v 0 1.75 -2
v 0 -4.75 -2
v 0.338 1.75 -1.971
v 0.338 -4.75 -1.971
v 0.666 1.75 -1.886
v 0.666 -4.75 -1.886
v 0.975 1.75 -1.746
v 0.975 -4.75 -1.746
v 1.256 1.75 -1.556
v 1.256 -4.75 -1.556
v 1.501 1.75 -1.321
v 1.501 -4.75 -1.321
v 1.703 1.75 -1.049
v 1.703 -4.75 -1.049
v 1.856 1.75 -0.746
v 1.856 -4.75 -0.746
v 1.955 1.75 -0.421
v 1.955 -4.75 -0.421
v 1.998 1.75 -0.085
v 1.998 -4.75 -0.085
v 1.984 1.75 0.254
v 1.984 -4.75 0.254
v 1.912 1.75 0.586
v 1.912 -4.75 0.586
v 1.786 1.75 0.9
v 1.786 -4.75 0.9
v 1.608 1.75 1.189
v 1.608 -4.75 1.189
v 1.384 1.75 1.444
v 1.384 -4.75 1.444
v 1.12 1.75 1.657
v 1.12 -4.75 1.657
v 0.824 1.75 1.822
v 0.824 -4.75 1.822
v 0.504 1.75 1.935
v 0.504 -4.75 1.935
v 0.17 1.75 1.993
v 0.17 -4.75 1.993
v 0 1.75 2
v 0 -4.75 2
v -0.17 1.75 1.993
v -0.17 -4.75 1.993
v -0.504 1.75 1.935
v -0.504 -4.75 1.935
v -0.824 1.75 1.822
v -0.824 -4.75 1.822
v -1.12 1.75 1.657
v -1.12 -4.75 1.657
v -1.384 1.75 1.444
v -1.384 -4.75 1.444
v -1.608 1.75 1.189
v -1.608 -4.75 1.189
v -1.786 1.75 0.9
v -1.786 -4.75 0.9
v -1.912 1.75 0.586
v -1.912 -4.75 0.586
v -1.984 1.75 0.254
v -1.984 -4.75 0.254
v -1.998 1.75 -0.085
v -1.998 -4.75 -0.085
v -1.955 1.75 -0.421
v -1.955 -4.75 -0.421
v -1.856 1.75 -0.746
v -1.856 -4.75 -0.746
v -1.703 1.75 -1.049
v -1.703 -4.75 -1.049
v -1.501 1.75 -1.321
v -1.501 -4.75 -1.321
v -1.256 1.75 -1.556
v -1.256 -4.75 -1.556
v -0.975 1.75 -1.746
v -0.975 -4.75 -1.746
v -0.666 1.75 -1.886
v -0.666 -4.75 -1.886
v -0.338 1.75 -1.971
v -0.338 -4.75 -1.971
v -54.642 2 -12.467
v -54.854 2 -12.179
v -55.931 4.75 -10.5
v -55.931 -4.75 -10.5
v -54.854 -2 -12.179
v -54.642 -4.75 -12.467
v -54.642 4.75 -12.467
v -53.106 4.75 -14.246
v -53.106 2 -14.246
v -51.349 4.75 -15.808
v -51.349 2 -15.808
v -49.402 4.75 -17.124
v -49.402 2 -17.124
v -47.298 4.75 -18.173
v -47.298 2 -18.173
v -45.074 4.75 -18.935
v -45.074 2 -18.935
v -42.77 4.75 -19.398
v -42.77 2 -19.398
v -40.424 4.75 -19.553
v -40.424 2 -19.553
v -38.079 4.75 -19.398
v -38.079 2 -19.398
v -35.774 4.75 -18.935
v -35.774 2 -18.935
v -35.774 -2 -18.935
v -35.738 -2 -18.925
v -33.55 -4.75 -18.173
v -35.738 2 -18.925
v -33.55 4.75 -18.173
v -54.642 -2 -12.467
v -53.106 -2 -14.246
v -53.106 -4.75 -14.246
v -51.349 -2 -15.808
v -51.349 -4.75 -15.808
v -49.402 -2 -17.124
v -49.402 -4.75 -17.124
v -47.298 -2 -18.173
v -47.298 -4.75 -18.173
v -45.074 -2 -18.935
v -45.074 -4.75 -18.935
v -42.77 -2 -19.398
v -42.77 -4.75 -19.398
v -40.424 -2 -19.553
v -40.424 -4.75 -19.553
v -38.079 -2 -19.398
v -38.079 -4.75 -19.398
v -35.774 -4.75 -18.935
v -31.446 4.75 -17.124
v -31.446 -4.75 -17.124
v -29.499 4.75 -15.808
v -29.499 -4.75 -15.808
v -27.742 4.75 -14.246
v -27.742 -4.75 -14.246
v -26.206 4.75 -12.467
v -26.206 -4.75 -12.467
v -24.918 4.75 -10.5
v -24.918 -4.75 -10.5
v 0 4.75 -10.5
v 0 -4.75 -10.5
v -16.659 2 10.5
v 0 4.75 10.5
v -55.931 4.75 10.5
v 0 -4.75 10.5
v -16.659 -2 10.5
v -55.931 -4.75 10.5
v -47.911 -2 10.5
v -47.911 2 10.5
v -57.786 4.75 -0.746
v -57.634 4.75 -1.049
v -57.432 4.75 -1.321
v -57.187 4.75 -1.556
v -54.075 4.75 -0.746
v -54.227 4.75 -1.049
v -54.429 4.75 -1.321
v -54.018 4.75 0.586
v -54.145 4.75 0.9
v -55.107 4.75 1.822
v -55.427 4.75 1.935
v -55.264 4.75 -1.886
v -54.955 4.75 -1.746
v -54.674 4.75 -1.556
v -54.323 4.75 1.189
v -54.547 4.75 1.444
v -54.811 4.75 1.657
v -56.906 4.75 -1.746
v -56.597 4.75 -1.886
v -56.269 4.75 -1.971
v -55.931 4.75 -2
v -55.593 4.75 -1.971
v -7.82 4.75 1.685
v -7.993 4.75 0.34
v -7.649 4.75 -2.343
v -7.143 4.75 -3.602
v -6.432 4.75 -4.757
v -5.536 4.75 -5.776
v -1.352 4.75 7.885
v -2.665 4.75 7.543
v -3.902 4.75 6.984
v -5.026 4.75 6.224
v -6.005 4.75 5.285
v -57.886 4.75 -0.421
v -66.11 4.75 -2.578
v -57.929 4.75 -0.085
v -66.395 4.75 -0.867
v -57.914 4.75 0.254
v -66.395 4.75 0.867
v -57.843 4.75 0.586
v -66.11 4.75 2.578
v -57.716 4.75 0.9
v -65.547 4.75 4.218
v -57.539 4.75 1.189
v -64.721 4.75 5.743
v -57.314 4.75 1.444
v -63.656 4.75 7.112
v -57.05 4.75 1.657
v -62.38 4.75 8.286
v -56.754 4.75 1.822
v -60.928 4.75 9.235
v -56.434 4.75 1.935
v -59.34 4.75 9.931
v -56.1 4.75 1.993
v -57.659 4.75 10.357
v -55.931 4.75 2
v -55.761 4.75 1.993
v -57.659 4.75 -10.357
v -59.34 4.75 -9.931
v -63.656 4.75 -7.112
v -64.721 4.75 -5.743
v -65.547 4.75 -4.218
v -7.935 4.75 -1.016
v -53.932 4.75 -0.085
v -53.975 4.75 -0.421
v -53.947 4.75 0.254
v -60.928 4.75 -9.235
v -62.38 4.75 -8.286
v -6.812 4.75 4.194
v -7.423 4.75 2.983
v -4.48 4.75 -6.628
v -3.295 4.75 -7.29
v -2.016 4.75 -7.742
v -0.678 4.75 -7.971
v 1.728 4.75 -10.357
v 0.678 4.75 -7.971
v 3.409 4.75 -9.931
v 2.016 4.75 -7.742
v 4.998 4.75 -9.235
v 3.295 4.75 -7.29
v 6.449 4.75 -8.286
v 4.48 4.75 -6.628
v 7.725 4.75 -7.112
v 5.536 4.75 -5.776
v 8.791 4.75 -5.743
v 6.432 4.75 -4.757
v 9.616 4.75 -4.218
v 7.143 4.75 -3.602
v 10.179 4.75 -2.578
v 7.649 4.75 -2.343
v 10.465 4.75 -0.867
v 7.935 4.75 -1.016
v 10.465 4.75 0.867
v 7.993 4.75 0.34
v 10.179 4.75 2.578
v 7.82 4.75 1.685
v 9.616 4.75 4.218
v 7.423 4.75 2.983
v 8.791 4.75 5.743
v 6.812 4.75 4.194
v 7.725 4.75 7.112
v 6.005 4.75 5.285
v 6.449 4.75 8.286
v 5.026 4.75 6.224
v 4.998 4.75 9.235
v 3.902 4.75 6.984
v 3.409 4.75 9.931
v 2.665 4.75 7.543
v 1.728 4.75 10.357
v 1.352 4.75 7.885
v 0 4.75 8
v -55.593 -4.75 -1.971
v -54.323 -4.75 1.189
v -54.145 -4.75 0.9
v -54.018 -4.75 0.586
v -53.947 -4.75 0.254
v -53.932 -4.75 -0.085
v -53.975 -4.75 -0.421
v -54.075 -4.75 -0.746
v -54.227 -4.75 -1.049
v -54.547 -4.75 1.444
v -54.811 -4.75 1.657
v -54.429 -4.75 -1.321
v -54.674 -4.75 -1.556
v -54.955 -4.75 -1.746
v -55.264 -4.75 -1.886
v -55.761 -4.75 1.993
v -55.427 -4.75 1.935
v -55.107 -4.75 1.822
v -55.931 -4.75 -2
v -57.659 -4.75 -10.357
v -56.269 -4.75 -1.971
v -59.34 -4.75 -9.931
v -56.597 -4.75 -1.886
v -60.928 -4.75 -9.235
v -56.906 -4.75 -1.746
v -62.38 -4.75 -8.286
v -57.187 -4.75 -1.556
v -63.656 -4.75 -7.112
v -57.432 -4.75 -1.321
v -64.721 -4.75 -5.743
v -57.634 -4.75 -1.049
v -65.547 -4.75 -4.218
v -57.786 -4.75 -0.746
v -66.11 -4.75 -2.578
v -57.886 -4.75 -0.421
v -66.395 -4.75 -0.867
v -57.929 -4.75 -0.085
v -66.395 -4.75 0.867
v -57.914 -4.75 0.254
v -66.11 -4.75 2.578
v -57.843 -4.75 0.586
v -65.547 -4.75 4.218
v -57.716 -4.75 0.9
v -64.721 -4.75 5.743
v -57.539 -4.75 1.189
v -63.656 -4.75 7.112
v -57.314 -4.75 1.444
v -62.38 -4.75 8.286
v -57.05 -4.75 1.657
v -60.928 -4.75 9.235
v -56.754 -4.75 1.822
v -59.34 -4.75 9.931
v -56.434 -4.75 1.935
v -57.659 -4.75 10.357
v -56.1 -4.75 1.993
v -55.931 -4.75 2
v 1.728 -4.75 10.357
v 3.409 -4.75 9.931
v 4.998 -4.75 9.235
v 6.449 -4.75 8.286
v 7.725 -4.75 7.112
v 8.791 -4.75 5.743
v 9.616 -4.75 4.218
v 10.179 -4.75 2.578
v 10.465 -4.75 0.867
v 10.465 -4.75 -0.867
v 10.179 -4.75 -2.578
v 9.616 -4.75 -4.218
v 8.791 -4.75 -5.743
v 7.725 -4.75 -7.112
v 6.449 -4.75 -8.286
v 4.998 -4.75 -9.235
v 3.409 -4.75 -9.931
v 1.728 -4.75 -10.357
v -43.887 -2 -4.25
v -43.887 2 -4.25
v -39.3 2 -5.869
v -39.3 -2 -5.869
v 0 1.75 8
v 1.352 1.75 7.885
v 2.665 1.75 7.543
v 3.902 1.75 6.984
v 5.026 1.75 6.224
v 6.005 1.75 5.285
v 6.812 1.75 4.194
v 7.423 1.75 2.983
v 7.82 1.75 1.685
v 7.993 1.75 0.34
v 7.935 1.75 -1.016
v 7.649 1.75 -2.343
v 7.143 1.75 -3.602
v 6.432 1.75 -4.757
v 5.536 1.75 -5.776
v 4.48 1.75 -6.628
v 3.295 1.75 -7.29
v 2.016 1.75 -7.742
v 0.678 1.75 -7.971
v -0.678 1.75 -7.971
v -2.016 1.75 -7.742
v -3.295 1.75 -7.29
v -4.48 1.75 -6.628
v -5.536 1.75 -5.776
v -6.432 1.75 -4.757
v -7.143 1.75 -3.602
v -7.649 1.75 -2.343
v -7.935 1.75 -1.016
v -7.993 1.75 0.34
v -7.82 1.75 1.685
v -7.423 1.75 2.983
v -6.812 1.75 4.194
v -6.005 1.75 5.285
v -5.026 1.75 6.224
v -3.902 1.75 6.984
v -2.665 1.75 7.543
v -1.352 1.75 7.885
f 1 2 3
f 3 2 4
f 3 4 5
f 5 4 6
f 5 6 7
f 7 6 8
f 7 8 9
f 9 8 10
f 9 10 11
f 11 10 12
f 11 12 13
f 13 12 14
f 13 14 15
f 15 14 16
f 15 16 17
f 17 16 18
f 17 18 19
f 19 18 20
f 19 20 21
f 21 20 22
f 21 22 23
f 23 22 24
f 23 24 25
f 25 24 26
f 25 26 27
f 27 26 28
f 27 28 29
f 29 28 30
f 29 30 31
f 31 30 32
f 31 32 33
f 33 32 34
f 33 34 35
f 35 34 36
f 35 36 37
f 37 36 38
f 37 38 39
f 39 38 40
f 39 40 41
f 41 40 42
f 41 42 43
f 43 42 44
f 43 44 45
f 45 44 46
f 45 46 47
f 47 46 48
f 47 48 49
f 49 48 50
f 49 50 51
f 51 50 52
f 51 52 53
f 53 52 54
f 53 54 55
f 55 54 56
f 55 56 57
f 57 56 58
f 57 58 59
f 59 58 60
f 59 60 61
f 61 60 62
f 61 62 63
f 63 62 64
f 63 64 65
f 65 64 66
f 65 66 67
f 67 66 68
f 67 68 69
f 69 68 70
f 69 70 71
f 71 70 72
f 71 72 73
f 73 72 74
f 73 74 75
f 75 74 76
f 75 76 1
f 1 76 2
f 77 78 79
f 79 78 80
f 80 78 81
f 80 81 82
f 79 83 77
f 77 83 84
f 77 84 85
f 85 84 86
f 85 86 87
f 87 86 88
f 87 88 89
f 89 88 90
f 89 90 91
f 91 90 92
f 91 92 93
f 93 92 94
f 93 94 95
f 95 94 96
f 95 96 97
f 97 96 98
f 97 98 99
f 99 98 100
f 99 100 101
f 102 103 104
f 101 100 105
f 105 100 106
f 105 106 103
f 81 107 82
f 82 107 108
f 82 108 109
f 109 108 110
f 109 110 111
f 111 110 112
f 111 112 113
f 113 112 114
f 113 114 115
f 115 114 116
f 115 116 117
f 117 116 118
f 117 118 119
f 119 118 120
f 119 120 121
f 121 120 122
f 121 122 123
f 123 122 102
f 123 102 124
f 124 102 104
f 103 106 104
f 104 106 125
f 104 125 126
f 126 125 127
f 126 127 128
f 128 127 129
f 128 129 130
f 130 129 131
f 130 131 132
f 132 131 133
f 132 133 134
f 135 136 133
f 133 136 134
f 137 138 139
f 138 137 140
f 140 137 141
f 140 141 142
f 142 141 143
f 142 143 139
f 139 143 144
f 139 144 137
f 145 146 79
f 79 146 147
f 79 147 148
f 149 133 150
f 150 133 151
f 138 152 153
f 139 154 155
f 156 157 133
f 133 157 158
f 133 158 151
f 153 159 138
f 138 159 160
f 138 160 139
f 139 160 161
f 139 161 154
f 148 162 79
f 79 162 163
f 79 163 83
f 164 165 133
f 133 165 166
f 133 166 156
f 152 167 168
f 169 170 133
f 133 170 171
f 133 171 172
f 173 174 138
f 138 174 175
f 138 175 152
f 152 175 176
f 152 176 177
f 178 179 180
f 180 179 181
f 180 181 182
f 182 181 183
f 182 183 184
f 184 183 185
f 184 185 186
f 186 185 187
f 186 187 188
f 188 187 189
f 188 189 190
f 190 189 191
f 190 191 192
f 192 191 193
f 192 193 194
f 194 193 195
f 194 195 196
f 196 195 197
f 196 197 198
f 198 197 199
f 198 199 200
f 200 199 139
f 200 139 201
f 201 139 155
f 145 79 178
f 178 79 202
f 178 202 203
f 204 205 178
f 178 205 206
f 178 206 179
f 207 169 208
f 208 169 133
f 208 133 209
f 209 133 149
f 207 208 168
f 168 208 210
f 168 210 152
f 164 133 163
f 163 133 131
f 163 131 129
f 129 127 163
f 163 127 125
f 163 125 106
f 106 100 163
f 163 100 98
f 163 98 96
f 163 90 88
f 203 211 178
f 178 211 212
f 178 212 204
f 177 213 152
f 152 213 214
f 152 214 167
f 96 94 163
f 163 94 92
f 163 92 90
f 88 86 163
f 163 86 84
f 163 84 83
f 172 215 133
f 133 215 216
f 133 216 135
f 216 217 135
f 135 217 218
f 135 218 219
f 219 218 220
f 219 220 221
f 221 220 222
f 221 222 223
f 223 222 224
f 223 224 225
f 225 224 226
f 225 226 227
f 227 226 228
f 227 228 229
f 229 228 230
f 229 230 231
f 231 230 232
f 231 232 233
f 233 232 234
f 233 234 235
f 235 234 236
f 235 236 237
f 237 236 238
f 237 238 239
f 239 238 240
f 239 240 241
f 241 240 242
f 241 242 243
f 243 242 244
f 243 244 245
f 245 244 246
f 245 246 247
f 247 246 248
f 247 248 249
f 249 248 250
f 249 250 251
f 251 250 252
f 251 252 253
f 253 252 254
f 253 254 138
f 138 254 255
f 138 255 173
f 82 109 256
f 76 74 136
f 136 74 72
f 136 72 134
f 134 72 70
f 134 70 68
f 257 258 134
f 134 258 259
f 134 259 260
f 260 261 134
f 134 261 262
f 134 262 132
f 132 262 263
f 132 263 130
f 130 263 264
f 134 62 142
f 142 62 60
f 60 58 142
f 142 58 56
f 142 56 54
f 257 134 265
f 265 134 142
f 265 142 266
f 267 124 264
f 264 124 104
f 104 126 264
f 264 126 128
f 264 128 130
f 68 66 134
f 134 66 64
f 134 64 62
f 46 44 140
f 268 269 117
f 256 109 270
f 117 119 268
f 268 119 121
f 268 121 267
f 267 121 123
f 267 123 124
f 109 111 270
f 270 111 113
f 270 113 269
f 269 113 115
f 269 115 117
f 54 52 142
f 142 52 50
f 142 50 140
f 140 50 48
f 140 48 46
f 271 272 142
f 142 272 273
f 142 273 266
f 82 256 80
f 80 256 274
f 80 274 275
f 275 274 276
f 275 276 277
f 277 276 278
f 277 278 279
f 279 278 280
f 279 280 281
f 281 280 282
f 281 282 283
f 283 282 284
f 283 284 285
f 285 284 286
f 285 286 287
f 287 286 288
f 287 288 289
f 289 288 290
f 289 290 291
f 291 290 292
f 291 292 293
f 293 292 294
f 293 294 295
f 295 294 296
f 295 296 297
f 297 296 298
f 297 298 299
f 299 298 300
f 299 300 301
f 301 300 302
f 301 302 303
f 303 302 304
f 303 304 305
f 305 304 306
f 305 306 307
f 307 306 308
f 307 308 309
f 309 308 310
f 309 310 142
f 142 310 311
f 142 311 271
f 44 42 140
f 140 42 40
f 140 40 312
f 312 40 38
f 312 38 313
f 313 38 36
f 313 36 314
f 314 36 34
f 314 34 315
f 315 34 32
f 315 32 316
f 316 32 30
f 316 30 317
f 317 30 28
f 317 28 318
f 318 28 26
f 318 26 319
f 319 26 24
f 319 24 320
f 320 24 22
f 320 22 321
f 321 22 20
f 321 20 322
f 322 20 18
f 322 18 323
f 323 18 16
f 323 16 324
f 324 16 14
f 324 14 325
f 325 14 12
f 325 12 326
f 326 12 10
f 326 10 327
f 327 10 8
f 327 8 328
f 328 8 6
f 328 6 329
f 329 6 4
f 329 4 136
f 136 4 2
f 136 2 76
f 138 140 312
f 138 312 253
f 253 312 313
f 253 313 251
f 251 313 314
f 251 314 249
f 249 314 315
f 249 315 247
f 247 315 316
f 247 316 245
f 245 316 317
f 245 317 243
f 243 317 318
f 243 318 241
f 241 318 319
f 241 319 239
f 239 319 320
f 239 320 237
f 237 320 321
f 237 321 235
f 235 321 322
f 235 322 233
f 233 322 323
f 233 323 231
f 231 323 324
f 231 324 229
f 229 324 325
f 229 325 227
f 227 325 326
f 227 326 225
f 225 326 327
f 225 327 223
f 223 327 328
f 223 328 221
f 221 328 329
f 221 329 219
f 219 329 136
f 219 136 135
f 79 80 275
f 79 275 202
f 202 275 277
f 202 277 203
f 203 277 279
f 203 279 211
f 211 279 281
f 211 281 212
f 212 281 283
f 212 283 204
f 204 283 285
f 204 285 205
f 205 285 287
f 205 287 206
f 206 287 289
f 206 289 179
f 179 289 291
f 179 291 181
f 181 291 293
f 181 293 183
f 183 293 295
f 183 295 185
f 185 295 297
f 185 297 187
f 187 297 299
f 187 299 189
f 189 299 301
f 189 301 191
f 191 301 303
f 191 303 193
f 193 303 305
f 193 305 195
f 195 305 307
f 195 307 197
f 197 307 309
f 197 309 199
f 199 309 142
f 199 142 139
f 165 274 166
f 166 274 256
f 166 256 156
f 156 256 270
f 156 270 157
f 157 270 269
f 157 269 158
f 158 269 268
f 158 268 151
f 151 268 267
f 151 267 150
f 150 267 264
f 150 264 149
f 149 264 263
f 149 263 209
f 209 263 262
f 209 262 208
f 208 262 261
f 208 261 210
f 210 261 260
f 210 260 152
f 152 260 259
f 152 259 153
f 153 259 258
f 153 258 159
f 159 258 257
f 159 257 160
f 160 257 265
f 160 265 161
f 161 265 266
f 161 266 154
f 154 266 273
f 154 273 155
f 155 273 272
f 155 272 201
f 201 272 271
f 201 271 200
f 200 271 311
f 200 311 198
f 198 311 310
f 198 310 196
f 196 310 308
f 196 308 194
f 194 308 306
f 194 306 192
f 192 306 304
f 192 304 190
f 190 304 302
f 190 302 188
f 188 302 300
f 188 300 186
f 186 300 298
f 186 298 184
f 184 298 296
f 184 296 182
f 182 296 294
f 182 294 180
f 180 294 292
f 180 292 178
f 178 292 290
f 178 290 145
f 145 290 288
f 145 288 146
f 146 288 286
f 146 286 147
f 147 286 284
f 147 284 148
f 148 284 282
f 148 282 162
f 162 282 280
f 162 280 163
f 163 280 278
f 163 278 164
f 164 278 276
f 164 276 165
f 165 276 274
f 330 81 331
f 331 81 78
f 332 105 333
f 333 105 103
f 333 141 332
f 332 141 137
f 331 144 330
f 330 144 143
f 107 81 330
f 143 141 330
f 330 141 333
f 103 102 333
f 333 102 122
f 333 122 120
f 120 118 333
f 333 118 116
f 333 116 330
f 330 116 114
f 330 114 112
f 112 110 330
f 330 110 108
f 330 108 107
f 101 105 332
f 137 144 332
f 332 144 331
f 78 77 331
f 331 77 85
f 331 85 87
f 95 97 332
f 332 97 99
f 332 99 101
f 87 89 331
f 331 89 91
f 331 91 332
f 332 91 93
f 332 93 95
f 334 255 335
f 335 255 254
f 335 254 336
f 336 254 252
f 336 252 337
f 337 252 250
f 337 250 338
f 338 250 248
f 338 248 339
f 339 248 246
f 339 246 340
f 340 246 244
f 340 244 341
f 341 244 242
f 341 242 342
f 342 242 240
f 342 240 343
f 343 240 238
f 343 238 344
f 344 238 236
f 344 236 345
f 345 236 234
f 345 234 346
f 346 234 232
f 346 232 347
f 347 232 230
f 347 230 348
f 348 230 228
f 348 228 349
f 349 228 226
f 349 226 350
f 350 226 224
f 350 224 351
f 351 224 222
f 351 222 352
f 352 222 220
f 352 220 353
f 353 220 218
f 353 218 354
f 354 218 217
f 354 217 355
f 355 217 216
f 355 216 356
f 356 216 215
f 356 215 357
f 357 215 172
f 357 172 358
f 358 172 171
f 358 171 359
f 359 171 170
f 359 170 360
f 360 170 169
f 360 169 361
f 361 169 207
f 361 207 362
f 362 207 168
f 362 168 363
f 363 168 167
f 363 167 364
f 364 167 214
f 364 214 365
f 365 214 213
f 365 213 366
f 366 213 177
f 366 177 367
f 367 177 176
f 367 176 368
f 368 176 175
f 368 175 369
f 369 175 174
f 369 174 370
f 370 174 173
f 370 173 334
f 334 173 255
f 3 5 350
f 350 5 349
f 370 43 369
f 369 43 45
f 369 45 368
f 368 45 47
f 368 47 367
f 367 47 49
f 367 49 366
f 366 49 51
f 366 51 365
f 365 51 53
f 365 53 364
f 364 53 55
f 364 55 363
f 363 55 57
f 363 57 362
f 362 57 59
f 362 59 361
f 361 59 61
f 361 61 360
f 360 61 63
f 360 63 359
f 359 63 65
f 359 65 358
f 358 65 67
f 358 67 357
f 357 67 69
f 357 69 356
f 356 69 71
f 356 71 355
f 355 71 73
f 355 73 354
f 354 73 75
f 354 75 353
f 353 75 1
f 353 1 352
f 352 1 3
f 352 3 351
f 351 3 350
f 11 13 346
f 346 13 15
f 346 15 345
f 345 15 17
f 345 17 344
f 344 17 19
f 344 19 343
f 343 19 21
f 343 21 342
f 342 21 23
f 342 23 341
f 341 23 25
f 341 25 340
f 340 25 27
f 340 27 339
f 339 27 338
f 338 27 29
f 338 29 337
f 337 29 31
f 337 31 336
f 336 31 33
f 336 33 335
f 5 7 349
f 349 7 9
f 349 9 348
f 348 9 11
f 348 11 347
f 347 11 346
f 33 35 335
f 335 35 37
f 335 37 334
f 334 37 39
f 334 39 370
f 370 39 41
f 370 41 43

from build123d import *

# Parameters (mm, degrees)
SKETCH1_R                       = 2
BOSS_EXTRUDE1_DEPTH             = 4.75
CUT_EXTRUDE1_DEPTH              = 2
BOSS_EXTRUDE2_REACH             = 69.423
BOSS_EXTRUDE2_DIRECTION_2_REACH = 69.423
CUT_EXTRUDE2_DEPTH              = 2
SKETCH7_R                       = 8
CUT_EXTRUDE3_DEPTH              = 3


with BuildPart() as part:
    # Sketch1 → Boss-Extrude1 (new, symmetric)
    with BuildSketch(Plane(origin=(0, 0, 0), x_dir=(1, 0, 0), z_dir=(0, 1, 0))):
        with BuildLine():
            Line((0, -10.500399217), (-55.93053828, -10.500399217))
            ThreePointArc((-55.93053828, -10.500399217), (-66.430937497, 0), (-55.93053828, 10.500399217))
            Line((-55.93053828, 10.500399217), (0, 10.500399217))
            ThreePointArc((0, 10.500399217), (10.500399217, 0), (0, -10.500399217))
        make_face()
        with Locations(Location((0, 0, 0), (0, 0, 270))):
            Circle(SKETCH1_R, mode=Mode.SUBTRACT)
        with Locations(Location((-55.93053828, 0, 0), (0, 0, 270))):
            Circle(SKETCH1_R, mode=Mode.SUBTRACT)
    extrude(amount=BOSS_EXTRUDE1_DEPTH, both=True)

    # Sketch3 → Cut-Extrude1 (cut, symmetric)
    with BuildSketch(Plane(origin=(0, 0, 0), x_dir=(1, 0, 0), z_dir=(0, 1, 0))):
        with BuildLine():
            Line((-35.751827911, 18.875253657), (-39.299525946, 5.868950542))
            Line((-39.299525946, 5.868950542), (26.645239155, -41.810424095))
            ThreePointArc((26.645239155, -41.810424095), (-18.563858299, -45.972421055), (-48.206523525, -11.584965354))
            Line((-48.206523525, -11.584965354), (-43.887265107, 4.249974277))
            Line((-43.887265107, 4.249974277), (-54.812276631, 12.148974547))
            ThreePointArc((-54.812276631, 12.148974547), (-46.585078234, 19.204535889), (-35.751827911, 18.875253657))
        make_face()
    extrude(amount=CUT_EXTRUDE1_DEPTH, both=True, mode=Mode.SUBTRACT)

    # Boss-Extrude2: up to this face of the body (flat: up to its plane)
    boss_extrude2_end = Plane(part.part.faces().sort_by_distance((-27.96526914, 4.75, 0))[0])
    # Sketch5 → Boss-Extrude2 (add, up to the picked face)
    with BuildSketch(Plane(origin=(0, 0, 0), x_dir=(1, 0, 0), z_dir=(0, 1, 0)), mode=Mode.PRIVATE) as boss_extrude2_sk1:
        with BuildLine():
            ThreePointArc((-24.917700351, 10.500399217), (-40.424119316, 19.553005923), (-55.93053828, 10.500399217))
            Line((-55.93053828, 10.500399217), (-24.917700351, 10.500399217))
        make_face()
    boss_extrude2_tool1 = split(extrude(boss_extrude2_sk1.sketch, amount=BOSS_EXTRUDE2_REACH, mode=Mode.PRIVATE), bisect_by=boss_extrude2_end, keep=Keep.BOTH, mode=Mode.PRIVATE)
    add(boss_extrude2_tool1.solids().sort_by(Axis((-40.424119, 0, -14.214125), (0, 1, 0)))[0])

    # Boss-Extrude2 direction 2: up to this face of the body (flat: up to its plane)
    boss_extrude2_direction_2_end = Plane(part.part.faces().sort_by_distance((-27.96526914, -4.75, 0))[0])
    # Sketch5 → Boss-Extrude2 direction 2 (add, up to the picked face)
    with BuildSketch(Plane(origin=(0, 0, 0), x_dir=(1, 0, 0), z_dir=(0, 1, 0)), mode=Mode.PRIVATE) as boss_extrude2_direction_2_sk1:
        with BuildLine():
            ThreePointArc((-24.917700351, 10.500399217), (-40.424119316, 19.553005923), (-55.93053828, 10.500399217))
            Line((-55.93053828, 10.500399217), (-24.917700351, 10.500399217))
        make_face()
    boss_extrude2_direction_2_tool1 = split(extrude(boss_extrude2_direction_2_sk1.sketch, amount=-BOSS_EXTRUDE2_DIRECTION_2_REACH, mode=Mode.PRIVATE), bisect_by=boss_extrude2_direction_2_end, keep=Keep.BOTH, mode=Mode.PRIVATE)
    add(boss_extrude2_direction_2_tool1.solids().sort_by(Axis((-40.424119, 0, -14.214125), (0, -1, 0)))[0])

    # Sketch6 → Cut-Extrude2 (cut, symmetric)
    with BuildSketch(Plane(origin=(0, 0, 0), x_dir=(1, 0, 0), z_dir=(0, 1, 0))):
        with BuildLine():
            Line((-39.299525946, 5.868950542), (-16.659276721, -10.500399217))
            Line((-16.659276721, -10.500399217), (-47.910689027, -10.500399217))
            Line((-47.910689027, -10.500399217), (-43.887265107, 4.249974277))
            Line((-43.887265107, 4.249974277), (-54.854382526, 12.179417945))
            ThreePointArc((-54.854382526, 12.179417945), (-46.349897212, 18.538096729), (-35.738154791, 18.925381021))
            Line((-35.738154791, 18.925381021), (-39.299525946, 5.868950542))
        make_face()
    extrude(amount=CUT_EXTRUDE2_DEPTH, both=True, mode=Mode.SUBTRACT)

    # Sketch7 → Cut-Extrude3 (cut)
    with BuildSketch(Plane(origin=(0, 4.75, 0), x_dir=(1, 0, 0), z_dir=(0, 1, 0))):
        with Locations(Location((0, 0, 0), (0, 0, 270))):
            Circle(SKETCH7_R)
    extrude(amount=-CUT_EXTRUDE3_DEPTH, mode=Mode.SUBTRACT)


solid = part.part
